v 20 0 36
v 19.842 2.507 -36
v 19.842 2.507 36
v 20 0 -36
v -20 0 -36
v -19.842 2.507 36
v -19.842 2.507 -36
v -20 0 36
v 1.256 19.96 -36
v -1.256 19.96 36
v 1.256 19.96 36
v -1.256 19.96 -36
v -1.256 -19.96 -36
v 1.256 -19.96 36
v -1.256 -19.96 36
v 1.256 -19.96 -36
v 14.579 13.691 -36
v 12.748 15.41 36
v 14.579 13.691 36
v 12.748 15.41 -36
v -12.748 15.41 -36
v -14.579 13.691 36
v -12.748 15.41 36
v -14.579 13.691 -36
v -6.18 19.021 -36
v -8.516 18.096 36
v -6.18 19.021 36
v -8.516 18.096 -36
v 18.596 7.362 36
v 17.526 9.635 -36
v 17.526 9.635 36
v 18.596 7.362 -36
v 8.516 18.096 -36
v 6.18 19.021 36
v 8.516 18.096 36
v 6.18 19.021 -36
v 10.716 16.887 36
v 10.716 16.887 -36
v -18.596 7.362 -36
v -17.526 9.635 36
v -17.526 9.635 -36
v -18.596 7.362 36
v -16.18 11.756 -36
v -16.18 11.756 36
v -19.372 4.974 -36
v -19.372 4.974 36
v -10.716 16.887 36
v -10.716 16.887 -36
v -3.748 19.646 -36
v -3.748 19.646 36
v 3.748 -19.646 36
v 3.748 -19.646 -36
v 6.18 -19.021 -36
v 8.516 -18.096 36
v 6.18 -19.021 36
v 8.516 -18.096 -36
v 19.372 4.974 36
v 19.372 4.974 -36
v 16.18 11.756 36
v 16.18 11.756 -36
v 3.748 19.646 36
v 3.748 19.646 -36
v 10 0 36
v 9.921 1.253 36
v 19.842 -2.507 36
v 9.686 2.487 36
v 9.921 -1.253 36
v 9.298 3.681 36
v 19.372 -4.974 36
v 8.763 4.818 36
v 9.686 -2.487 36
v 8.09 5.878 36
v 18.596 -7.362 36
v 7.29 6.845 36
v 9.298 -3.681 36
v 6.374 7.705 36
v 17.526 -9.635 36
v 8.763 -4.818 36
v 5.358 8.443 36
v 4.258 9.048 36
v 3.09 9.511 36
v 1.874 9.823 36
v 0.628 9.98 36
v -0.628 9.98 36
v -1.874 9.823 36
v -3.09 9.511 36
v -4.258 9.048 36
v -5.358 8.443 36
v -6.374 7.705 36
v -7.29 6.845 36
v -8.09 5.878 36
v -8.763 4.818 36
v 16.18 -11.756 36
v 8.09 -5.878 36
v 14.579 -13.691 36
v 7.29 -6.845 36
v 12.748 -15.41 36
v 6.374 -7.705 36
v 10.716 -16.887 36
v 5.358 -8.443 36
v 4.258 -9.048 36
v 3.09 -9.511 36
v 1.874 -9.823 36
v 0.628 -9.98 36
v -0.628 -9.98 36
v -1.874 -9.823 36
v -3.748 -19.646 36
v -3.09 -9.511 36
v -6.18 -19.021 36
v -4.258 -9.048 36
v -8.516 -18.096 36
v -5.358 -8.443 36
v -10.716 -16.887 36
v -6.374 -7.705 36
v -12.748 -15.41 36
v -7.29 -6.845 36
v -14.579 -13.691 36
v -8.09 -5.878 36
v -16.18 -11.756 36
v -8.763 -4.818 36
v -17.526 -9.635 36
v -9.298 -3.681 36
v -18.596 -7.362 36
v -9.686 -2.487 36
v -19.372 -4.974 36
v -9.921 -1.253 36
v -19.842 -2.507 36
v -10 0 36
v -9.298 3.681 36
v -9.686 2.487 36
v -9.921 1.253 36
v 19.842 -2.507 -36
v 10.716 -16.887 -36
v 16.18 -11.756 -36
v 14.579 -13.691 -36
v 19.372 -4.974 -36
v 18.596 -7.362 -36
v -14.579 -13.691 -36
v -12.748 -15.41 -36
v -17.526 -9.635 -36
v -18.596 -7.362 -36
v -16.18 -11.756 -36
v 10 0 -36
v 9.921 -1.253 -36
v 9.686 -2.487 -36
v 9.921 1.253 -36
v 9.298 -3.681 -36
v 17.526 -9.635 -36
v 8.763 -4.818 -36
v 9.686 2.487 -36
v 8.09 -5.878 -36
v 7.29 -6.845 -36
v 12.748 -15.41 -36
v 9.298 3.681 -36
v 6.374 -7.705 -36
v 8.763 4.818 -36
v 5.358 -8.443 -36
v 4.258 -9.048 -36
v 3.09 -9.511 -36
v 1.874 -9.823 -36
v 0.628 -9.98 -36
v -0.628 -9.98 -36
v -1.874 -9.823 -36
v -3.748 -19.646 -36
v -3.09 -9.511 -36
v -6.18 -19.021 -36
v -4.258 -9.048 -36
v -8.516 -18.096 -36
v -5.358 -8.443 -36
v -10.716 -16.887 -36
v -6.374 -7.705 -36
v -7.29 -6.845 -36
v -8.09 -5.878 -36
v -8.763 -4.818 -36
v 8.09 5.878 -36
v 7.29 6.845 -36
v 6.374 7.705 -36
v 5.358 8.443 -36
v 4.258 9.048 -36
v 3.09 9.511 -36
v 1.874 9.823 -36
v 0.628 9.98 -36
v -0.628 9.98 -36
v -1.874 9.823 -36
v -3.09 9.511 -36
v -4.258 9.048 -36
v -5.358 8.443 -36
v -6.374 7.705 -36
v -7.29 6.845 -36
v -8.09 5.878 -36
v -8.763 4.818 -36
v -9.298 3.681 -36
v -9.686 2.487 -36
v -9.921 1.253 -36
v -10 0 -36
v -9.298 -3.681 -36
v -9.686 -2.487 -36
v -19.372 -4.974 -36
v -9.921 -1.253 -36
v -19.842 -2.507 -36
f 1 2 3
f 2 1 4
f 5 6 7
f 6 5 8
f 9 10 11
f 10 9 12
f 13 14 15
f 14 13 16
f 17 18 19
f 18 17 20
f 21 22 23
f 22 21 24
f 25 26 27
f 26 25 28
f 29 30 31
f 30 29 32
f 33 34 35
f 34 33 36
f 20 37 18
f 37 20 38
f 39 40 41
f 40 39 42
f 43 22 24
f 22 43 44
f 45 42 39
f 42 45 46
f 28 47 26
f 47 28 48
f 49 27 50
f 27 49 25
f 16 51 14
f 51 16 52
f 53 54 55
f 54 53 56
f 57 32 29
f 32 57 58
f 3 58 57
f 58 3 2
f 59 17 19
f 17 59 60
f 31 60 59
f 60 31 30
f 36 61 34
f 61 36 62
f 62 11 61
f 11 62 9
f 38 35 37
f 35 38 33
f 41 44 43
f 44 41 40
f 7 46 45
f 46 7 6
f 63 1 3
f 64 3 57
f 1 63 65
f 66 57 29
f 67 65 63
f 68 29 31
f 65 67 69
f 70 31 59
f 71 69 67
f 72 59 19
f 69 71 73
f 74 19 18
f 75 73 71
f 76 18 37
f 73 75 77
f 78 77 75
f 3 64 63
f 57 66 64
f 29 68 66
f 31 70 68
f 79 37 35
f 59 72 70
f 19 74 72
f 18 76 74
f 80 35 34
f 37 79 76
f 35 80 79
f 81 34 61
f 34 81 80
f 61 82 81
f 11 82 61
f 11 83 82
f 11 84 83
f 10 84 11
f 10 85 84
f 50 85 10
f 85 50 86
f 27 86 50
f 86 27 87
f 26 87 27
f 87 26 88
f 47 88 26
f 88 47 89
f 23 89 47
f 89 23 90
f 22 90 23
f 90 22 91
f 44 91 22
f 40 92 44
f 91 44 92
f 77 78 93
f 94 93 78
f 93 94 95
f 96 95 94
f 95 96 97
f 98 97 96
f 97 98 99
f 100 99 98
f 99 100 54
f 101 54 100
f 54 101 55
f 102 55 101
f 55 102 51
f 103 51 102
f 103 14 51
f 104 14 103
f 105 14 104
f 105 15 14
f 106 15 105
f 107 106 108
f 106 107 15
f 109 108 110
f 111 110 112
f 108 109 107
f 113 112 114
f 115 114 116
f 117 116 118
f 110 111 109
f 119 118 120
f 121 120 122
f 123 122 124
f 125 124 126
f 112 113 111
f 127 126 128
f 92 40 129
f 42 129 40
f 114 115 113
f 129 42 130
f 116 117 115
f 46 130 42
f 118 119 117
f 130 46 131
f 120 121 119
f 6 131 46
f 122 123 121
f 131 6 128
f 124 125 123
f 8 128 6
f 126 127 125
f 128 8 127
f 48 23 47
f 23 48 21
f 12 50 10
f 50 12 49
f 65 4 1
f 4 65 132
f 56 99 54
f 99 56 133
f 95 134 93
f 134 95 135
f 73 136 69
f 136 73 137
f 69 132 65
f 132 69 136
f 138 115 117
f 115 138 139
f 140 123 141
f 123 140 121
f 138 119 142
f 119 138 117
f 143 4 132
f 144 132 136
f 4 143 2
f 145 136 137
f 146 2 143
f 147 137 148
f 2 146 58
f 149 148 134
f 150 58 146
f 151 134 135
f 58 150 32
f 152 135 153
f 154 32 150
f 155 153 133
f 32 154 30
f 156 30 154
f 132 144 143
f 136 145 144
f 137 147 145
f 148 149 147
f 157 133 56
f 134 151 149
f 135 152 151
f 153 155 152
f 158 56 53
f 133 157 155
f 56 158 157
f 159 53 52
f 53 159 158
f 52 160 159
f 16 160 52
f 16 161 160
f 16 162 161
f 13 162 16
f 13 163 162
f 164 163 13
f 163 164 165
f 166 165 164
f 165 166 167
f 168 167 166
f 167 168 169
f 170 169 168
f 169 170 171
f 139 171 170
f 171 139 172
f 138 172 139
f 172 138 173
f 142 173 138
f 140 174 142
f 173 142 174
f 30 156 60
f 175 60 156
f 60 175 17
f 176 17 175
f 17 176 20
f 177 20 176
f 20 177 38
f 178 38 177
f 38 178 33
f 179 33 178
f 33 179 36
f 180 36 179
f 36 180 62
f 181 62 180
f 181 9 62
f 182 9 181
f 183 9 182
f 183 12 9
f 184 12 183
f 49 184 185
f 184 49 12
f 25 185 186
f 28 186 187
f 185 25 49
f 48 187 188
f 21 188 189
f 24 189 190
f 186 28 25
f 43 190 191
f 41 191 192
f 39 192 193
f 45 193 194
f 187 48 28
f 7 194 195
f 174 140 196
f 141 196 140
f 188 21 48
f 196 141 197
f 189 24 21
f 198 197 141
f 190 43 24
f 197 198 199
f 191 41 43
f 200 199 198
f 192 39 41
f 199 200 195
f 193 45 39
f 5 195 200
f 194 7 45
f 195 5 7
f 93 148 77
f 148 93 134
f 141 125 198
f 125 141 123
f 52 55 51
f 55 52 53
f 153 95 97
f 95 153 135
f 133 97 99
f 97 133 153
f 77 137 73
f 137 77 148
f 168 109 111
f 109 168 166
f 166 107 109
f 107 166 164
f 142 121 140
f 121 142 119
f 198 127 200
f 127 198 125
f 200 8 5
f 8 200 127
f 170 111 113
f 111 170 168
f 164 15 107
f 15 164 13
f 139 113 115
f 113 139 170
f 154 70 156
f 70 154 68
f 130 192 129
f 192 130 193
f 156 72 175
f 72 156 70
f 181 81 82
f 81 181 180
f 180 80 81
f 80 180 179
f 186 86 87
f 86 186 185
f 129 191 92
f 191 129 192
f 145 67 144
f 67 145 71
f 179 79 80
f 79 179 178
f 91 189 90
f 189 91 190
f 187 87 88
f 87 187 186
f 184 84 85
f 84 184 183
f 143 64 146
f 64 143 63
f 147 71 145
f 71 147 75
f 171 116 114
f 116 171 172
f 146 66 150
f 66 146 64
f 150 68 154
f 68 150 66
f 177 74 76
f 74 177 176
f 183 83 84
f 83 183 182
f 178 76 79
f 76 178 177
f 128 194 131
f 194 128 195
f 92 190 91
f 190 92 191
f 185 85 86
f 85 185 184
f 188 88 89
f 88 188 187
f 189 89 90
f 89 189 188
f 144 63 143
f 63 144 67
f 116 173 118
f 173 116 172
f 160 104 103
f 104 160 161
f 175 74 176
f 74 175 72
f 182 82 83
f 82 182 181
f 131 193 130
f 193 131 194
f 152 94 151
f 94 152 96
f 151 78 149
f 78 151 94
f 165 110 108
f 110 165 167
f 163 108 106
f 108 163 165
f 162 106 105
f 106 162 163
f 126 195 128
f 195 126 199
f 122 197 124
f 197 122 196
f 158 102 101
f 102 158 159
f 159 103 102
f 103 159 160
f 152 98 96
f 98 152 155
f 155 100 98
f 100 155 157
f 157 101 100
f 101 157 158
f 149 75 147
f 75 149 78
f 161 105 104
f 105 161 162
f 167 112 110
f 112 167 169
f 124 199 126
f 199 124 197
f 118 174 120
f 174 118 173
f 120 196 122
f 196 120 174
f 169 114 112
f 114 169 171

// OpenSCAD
$fn = 50;


difference() {
	union() {
		translate(v = [0, 0, -36.0000000000]) {
			cylinder(h = 72, r = 20.0000000000);
		}
	}
	union() {
		translate(v = [0, 0, -100.0000000000]) {
			cylinder(h = 200, r = 10);
		}
	}
}
